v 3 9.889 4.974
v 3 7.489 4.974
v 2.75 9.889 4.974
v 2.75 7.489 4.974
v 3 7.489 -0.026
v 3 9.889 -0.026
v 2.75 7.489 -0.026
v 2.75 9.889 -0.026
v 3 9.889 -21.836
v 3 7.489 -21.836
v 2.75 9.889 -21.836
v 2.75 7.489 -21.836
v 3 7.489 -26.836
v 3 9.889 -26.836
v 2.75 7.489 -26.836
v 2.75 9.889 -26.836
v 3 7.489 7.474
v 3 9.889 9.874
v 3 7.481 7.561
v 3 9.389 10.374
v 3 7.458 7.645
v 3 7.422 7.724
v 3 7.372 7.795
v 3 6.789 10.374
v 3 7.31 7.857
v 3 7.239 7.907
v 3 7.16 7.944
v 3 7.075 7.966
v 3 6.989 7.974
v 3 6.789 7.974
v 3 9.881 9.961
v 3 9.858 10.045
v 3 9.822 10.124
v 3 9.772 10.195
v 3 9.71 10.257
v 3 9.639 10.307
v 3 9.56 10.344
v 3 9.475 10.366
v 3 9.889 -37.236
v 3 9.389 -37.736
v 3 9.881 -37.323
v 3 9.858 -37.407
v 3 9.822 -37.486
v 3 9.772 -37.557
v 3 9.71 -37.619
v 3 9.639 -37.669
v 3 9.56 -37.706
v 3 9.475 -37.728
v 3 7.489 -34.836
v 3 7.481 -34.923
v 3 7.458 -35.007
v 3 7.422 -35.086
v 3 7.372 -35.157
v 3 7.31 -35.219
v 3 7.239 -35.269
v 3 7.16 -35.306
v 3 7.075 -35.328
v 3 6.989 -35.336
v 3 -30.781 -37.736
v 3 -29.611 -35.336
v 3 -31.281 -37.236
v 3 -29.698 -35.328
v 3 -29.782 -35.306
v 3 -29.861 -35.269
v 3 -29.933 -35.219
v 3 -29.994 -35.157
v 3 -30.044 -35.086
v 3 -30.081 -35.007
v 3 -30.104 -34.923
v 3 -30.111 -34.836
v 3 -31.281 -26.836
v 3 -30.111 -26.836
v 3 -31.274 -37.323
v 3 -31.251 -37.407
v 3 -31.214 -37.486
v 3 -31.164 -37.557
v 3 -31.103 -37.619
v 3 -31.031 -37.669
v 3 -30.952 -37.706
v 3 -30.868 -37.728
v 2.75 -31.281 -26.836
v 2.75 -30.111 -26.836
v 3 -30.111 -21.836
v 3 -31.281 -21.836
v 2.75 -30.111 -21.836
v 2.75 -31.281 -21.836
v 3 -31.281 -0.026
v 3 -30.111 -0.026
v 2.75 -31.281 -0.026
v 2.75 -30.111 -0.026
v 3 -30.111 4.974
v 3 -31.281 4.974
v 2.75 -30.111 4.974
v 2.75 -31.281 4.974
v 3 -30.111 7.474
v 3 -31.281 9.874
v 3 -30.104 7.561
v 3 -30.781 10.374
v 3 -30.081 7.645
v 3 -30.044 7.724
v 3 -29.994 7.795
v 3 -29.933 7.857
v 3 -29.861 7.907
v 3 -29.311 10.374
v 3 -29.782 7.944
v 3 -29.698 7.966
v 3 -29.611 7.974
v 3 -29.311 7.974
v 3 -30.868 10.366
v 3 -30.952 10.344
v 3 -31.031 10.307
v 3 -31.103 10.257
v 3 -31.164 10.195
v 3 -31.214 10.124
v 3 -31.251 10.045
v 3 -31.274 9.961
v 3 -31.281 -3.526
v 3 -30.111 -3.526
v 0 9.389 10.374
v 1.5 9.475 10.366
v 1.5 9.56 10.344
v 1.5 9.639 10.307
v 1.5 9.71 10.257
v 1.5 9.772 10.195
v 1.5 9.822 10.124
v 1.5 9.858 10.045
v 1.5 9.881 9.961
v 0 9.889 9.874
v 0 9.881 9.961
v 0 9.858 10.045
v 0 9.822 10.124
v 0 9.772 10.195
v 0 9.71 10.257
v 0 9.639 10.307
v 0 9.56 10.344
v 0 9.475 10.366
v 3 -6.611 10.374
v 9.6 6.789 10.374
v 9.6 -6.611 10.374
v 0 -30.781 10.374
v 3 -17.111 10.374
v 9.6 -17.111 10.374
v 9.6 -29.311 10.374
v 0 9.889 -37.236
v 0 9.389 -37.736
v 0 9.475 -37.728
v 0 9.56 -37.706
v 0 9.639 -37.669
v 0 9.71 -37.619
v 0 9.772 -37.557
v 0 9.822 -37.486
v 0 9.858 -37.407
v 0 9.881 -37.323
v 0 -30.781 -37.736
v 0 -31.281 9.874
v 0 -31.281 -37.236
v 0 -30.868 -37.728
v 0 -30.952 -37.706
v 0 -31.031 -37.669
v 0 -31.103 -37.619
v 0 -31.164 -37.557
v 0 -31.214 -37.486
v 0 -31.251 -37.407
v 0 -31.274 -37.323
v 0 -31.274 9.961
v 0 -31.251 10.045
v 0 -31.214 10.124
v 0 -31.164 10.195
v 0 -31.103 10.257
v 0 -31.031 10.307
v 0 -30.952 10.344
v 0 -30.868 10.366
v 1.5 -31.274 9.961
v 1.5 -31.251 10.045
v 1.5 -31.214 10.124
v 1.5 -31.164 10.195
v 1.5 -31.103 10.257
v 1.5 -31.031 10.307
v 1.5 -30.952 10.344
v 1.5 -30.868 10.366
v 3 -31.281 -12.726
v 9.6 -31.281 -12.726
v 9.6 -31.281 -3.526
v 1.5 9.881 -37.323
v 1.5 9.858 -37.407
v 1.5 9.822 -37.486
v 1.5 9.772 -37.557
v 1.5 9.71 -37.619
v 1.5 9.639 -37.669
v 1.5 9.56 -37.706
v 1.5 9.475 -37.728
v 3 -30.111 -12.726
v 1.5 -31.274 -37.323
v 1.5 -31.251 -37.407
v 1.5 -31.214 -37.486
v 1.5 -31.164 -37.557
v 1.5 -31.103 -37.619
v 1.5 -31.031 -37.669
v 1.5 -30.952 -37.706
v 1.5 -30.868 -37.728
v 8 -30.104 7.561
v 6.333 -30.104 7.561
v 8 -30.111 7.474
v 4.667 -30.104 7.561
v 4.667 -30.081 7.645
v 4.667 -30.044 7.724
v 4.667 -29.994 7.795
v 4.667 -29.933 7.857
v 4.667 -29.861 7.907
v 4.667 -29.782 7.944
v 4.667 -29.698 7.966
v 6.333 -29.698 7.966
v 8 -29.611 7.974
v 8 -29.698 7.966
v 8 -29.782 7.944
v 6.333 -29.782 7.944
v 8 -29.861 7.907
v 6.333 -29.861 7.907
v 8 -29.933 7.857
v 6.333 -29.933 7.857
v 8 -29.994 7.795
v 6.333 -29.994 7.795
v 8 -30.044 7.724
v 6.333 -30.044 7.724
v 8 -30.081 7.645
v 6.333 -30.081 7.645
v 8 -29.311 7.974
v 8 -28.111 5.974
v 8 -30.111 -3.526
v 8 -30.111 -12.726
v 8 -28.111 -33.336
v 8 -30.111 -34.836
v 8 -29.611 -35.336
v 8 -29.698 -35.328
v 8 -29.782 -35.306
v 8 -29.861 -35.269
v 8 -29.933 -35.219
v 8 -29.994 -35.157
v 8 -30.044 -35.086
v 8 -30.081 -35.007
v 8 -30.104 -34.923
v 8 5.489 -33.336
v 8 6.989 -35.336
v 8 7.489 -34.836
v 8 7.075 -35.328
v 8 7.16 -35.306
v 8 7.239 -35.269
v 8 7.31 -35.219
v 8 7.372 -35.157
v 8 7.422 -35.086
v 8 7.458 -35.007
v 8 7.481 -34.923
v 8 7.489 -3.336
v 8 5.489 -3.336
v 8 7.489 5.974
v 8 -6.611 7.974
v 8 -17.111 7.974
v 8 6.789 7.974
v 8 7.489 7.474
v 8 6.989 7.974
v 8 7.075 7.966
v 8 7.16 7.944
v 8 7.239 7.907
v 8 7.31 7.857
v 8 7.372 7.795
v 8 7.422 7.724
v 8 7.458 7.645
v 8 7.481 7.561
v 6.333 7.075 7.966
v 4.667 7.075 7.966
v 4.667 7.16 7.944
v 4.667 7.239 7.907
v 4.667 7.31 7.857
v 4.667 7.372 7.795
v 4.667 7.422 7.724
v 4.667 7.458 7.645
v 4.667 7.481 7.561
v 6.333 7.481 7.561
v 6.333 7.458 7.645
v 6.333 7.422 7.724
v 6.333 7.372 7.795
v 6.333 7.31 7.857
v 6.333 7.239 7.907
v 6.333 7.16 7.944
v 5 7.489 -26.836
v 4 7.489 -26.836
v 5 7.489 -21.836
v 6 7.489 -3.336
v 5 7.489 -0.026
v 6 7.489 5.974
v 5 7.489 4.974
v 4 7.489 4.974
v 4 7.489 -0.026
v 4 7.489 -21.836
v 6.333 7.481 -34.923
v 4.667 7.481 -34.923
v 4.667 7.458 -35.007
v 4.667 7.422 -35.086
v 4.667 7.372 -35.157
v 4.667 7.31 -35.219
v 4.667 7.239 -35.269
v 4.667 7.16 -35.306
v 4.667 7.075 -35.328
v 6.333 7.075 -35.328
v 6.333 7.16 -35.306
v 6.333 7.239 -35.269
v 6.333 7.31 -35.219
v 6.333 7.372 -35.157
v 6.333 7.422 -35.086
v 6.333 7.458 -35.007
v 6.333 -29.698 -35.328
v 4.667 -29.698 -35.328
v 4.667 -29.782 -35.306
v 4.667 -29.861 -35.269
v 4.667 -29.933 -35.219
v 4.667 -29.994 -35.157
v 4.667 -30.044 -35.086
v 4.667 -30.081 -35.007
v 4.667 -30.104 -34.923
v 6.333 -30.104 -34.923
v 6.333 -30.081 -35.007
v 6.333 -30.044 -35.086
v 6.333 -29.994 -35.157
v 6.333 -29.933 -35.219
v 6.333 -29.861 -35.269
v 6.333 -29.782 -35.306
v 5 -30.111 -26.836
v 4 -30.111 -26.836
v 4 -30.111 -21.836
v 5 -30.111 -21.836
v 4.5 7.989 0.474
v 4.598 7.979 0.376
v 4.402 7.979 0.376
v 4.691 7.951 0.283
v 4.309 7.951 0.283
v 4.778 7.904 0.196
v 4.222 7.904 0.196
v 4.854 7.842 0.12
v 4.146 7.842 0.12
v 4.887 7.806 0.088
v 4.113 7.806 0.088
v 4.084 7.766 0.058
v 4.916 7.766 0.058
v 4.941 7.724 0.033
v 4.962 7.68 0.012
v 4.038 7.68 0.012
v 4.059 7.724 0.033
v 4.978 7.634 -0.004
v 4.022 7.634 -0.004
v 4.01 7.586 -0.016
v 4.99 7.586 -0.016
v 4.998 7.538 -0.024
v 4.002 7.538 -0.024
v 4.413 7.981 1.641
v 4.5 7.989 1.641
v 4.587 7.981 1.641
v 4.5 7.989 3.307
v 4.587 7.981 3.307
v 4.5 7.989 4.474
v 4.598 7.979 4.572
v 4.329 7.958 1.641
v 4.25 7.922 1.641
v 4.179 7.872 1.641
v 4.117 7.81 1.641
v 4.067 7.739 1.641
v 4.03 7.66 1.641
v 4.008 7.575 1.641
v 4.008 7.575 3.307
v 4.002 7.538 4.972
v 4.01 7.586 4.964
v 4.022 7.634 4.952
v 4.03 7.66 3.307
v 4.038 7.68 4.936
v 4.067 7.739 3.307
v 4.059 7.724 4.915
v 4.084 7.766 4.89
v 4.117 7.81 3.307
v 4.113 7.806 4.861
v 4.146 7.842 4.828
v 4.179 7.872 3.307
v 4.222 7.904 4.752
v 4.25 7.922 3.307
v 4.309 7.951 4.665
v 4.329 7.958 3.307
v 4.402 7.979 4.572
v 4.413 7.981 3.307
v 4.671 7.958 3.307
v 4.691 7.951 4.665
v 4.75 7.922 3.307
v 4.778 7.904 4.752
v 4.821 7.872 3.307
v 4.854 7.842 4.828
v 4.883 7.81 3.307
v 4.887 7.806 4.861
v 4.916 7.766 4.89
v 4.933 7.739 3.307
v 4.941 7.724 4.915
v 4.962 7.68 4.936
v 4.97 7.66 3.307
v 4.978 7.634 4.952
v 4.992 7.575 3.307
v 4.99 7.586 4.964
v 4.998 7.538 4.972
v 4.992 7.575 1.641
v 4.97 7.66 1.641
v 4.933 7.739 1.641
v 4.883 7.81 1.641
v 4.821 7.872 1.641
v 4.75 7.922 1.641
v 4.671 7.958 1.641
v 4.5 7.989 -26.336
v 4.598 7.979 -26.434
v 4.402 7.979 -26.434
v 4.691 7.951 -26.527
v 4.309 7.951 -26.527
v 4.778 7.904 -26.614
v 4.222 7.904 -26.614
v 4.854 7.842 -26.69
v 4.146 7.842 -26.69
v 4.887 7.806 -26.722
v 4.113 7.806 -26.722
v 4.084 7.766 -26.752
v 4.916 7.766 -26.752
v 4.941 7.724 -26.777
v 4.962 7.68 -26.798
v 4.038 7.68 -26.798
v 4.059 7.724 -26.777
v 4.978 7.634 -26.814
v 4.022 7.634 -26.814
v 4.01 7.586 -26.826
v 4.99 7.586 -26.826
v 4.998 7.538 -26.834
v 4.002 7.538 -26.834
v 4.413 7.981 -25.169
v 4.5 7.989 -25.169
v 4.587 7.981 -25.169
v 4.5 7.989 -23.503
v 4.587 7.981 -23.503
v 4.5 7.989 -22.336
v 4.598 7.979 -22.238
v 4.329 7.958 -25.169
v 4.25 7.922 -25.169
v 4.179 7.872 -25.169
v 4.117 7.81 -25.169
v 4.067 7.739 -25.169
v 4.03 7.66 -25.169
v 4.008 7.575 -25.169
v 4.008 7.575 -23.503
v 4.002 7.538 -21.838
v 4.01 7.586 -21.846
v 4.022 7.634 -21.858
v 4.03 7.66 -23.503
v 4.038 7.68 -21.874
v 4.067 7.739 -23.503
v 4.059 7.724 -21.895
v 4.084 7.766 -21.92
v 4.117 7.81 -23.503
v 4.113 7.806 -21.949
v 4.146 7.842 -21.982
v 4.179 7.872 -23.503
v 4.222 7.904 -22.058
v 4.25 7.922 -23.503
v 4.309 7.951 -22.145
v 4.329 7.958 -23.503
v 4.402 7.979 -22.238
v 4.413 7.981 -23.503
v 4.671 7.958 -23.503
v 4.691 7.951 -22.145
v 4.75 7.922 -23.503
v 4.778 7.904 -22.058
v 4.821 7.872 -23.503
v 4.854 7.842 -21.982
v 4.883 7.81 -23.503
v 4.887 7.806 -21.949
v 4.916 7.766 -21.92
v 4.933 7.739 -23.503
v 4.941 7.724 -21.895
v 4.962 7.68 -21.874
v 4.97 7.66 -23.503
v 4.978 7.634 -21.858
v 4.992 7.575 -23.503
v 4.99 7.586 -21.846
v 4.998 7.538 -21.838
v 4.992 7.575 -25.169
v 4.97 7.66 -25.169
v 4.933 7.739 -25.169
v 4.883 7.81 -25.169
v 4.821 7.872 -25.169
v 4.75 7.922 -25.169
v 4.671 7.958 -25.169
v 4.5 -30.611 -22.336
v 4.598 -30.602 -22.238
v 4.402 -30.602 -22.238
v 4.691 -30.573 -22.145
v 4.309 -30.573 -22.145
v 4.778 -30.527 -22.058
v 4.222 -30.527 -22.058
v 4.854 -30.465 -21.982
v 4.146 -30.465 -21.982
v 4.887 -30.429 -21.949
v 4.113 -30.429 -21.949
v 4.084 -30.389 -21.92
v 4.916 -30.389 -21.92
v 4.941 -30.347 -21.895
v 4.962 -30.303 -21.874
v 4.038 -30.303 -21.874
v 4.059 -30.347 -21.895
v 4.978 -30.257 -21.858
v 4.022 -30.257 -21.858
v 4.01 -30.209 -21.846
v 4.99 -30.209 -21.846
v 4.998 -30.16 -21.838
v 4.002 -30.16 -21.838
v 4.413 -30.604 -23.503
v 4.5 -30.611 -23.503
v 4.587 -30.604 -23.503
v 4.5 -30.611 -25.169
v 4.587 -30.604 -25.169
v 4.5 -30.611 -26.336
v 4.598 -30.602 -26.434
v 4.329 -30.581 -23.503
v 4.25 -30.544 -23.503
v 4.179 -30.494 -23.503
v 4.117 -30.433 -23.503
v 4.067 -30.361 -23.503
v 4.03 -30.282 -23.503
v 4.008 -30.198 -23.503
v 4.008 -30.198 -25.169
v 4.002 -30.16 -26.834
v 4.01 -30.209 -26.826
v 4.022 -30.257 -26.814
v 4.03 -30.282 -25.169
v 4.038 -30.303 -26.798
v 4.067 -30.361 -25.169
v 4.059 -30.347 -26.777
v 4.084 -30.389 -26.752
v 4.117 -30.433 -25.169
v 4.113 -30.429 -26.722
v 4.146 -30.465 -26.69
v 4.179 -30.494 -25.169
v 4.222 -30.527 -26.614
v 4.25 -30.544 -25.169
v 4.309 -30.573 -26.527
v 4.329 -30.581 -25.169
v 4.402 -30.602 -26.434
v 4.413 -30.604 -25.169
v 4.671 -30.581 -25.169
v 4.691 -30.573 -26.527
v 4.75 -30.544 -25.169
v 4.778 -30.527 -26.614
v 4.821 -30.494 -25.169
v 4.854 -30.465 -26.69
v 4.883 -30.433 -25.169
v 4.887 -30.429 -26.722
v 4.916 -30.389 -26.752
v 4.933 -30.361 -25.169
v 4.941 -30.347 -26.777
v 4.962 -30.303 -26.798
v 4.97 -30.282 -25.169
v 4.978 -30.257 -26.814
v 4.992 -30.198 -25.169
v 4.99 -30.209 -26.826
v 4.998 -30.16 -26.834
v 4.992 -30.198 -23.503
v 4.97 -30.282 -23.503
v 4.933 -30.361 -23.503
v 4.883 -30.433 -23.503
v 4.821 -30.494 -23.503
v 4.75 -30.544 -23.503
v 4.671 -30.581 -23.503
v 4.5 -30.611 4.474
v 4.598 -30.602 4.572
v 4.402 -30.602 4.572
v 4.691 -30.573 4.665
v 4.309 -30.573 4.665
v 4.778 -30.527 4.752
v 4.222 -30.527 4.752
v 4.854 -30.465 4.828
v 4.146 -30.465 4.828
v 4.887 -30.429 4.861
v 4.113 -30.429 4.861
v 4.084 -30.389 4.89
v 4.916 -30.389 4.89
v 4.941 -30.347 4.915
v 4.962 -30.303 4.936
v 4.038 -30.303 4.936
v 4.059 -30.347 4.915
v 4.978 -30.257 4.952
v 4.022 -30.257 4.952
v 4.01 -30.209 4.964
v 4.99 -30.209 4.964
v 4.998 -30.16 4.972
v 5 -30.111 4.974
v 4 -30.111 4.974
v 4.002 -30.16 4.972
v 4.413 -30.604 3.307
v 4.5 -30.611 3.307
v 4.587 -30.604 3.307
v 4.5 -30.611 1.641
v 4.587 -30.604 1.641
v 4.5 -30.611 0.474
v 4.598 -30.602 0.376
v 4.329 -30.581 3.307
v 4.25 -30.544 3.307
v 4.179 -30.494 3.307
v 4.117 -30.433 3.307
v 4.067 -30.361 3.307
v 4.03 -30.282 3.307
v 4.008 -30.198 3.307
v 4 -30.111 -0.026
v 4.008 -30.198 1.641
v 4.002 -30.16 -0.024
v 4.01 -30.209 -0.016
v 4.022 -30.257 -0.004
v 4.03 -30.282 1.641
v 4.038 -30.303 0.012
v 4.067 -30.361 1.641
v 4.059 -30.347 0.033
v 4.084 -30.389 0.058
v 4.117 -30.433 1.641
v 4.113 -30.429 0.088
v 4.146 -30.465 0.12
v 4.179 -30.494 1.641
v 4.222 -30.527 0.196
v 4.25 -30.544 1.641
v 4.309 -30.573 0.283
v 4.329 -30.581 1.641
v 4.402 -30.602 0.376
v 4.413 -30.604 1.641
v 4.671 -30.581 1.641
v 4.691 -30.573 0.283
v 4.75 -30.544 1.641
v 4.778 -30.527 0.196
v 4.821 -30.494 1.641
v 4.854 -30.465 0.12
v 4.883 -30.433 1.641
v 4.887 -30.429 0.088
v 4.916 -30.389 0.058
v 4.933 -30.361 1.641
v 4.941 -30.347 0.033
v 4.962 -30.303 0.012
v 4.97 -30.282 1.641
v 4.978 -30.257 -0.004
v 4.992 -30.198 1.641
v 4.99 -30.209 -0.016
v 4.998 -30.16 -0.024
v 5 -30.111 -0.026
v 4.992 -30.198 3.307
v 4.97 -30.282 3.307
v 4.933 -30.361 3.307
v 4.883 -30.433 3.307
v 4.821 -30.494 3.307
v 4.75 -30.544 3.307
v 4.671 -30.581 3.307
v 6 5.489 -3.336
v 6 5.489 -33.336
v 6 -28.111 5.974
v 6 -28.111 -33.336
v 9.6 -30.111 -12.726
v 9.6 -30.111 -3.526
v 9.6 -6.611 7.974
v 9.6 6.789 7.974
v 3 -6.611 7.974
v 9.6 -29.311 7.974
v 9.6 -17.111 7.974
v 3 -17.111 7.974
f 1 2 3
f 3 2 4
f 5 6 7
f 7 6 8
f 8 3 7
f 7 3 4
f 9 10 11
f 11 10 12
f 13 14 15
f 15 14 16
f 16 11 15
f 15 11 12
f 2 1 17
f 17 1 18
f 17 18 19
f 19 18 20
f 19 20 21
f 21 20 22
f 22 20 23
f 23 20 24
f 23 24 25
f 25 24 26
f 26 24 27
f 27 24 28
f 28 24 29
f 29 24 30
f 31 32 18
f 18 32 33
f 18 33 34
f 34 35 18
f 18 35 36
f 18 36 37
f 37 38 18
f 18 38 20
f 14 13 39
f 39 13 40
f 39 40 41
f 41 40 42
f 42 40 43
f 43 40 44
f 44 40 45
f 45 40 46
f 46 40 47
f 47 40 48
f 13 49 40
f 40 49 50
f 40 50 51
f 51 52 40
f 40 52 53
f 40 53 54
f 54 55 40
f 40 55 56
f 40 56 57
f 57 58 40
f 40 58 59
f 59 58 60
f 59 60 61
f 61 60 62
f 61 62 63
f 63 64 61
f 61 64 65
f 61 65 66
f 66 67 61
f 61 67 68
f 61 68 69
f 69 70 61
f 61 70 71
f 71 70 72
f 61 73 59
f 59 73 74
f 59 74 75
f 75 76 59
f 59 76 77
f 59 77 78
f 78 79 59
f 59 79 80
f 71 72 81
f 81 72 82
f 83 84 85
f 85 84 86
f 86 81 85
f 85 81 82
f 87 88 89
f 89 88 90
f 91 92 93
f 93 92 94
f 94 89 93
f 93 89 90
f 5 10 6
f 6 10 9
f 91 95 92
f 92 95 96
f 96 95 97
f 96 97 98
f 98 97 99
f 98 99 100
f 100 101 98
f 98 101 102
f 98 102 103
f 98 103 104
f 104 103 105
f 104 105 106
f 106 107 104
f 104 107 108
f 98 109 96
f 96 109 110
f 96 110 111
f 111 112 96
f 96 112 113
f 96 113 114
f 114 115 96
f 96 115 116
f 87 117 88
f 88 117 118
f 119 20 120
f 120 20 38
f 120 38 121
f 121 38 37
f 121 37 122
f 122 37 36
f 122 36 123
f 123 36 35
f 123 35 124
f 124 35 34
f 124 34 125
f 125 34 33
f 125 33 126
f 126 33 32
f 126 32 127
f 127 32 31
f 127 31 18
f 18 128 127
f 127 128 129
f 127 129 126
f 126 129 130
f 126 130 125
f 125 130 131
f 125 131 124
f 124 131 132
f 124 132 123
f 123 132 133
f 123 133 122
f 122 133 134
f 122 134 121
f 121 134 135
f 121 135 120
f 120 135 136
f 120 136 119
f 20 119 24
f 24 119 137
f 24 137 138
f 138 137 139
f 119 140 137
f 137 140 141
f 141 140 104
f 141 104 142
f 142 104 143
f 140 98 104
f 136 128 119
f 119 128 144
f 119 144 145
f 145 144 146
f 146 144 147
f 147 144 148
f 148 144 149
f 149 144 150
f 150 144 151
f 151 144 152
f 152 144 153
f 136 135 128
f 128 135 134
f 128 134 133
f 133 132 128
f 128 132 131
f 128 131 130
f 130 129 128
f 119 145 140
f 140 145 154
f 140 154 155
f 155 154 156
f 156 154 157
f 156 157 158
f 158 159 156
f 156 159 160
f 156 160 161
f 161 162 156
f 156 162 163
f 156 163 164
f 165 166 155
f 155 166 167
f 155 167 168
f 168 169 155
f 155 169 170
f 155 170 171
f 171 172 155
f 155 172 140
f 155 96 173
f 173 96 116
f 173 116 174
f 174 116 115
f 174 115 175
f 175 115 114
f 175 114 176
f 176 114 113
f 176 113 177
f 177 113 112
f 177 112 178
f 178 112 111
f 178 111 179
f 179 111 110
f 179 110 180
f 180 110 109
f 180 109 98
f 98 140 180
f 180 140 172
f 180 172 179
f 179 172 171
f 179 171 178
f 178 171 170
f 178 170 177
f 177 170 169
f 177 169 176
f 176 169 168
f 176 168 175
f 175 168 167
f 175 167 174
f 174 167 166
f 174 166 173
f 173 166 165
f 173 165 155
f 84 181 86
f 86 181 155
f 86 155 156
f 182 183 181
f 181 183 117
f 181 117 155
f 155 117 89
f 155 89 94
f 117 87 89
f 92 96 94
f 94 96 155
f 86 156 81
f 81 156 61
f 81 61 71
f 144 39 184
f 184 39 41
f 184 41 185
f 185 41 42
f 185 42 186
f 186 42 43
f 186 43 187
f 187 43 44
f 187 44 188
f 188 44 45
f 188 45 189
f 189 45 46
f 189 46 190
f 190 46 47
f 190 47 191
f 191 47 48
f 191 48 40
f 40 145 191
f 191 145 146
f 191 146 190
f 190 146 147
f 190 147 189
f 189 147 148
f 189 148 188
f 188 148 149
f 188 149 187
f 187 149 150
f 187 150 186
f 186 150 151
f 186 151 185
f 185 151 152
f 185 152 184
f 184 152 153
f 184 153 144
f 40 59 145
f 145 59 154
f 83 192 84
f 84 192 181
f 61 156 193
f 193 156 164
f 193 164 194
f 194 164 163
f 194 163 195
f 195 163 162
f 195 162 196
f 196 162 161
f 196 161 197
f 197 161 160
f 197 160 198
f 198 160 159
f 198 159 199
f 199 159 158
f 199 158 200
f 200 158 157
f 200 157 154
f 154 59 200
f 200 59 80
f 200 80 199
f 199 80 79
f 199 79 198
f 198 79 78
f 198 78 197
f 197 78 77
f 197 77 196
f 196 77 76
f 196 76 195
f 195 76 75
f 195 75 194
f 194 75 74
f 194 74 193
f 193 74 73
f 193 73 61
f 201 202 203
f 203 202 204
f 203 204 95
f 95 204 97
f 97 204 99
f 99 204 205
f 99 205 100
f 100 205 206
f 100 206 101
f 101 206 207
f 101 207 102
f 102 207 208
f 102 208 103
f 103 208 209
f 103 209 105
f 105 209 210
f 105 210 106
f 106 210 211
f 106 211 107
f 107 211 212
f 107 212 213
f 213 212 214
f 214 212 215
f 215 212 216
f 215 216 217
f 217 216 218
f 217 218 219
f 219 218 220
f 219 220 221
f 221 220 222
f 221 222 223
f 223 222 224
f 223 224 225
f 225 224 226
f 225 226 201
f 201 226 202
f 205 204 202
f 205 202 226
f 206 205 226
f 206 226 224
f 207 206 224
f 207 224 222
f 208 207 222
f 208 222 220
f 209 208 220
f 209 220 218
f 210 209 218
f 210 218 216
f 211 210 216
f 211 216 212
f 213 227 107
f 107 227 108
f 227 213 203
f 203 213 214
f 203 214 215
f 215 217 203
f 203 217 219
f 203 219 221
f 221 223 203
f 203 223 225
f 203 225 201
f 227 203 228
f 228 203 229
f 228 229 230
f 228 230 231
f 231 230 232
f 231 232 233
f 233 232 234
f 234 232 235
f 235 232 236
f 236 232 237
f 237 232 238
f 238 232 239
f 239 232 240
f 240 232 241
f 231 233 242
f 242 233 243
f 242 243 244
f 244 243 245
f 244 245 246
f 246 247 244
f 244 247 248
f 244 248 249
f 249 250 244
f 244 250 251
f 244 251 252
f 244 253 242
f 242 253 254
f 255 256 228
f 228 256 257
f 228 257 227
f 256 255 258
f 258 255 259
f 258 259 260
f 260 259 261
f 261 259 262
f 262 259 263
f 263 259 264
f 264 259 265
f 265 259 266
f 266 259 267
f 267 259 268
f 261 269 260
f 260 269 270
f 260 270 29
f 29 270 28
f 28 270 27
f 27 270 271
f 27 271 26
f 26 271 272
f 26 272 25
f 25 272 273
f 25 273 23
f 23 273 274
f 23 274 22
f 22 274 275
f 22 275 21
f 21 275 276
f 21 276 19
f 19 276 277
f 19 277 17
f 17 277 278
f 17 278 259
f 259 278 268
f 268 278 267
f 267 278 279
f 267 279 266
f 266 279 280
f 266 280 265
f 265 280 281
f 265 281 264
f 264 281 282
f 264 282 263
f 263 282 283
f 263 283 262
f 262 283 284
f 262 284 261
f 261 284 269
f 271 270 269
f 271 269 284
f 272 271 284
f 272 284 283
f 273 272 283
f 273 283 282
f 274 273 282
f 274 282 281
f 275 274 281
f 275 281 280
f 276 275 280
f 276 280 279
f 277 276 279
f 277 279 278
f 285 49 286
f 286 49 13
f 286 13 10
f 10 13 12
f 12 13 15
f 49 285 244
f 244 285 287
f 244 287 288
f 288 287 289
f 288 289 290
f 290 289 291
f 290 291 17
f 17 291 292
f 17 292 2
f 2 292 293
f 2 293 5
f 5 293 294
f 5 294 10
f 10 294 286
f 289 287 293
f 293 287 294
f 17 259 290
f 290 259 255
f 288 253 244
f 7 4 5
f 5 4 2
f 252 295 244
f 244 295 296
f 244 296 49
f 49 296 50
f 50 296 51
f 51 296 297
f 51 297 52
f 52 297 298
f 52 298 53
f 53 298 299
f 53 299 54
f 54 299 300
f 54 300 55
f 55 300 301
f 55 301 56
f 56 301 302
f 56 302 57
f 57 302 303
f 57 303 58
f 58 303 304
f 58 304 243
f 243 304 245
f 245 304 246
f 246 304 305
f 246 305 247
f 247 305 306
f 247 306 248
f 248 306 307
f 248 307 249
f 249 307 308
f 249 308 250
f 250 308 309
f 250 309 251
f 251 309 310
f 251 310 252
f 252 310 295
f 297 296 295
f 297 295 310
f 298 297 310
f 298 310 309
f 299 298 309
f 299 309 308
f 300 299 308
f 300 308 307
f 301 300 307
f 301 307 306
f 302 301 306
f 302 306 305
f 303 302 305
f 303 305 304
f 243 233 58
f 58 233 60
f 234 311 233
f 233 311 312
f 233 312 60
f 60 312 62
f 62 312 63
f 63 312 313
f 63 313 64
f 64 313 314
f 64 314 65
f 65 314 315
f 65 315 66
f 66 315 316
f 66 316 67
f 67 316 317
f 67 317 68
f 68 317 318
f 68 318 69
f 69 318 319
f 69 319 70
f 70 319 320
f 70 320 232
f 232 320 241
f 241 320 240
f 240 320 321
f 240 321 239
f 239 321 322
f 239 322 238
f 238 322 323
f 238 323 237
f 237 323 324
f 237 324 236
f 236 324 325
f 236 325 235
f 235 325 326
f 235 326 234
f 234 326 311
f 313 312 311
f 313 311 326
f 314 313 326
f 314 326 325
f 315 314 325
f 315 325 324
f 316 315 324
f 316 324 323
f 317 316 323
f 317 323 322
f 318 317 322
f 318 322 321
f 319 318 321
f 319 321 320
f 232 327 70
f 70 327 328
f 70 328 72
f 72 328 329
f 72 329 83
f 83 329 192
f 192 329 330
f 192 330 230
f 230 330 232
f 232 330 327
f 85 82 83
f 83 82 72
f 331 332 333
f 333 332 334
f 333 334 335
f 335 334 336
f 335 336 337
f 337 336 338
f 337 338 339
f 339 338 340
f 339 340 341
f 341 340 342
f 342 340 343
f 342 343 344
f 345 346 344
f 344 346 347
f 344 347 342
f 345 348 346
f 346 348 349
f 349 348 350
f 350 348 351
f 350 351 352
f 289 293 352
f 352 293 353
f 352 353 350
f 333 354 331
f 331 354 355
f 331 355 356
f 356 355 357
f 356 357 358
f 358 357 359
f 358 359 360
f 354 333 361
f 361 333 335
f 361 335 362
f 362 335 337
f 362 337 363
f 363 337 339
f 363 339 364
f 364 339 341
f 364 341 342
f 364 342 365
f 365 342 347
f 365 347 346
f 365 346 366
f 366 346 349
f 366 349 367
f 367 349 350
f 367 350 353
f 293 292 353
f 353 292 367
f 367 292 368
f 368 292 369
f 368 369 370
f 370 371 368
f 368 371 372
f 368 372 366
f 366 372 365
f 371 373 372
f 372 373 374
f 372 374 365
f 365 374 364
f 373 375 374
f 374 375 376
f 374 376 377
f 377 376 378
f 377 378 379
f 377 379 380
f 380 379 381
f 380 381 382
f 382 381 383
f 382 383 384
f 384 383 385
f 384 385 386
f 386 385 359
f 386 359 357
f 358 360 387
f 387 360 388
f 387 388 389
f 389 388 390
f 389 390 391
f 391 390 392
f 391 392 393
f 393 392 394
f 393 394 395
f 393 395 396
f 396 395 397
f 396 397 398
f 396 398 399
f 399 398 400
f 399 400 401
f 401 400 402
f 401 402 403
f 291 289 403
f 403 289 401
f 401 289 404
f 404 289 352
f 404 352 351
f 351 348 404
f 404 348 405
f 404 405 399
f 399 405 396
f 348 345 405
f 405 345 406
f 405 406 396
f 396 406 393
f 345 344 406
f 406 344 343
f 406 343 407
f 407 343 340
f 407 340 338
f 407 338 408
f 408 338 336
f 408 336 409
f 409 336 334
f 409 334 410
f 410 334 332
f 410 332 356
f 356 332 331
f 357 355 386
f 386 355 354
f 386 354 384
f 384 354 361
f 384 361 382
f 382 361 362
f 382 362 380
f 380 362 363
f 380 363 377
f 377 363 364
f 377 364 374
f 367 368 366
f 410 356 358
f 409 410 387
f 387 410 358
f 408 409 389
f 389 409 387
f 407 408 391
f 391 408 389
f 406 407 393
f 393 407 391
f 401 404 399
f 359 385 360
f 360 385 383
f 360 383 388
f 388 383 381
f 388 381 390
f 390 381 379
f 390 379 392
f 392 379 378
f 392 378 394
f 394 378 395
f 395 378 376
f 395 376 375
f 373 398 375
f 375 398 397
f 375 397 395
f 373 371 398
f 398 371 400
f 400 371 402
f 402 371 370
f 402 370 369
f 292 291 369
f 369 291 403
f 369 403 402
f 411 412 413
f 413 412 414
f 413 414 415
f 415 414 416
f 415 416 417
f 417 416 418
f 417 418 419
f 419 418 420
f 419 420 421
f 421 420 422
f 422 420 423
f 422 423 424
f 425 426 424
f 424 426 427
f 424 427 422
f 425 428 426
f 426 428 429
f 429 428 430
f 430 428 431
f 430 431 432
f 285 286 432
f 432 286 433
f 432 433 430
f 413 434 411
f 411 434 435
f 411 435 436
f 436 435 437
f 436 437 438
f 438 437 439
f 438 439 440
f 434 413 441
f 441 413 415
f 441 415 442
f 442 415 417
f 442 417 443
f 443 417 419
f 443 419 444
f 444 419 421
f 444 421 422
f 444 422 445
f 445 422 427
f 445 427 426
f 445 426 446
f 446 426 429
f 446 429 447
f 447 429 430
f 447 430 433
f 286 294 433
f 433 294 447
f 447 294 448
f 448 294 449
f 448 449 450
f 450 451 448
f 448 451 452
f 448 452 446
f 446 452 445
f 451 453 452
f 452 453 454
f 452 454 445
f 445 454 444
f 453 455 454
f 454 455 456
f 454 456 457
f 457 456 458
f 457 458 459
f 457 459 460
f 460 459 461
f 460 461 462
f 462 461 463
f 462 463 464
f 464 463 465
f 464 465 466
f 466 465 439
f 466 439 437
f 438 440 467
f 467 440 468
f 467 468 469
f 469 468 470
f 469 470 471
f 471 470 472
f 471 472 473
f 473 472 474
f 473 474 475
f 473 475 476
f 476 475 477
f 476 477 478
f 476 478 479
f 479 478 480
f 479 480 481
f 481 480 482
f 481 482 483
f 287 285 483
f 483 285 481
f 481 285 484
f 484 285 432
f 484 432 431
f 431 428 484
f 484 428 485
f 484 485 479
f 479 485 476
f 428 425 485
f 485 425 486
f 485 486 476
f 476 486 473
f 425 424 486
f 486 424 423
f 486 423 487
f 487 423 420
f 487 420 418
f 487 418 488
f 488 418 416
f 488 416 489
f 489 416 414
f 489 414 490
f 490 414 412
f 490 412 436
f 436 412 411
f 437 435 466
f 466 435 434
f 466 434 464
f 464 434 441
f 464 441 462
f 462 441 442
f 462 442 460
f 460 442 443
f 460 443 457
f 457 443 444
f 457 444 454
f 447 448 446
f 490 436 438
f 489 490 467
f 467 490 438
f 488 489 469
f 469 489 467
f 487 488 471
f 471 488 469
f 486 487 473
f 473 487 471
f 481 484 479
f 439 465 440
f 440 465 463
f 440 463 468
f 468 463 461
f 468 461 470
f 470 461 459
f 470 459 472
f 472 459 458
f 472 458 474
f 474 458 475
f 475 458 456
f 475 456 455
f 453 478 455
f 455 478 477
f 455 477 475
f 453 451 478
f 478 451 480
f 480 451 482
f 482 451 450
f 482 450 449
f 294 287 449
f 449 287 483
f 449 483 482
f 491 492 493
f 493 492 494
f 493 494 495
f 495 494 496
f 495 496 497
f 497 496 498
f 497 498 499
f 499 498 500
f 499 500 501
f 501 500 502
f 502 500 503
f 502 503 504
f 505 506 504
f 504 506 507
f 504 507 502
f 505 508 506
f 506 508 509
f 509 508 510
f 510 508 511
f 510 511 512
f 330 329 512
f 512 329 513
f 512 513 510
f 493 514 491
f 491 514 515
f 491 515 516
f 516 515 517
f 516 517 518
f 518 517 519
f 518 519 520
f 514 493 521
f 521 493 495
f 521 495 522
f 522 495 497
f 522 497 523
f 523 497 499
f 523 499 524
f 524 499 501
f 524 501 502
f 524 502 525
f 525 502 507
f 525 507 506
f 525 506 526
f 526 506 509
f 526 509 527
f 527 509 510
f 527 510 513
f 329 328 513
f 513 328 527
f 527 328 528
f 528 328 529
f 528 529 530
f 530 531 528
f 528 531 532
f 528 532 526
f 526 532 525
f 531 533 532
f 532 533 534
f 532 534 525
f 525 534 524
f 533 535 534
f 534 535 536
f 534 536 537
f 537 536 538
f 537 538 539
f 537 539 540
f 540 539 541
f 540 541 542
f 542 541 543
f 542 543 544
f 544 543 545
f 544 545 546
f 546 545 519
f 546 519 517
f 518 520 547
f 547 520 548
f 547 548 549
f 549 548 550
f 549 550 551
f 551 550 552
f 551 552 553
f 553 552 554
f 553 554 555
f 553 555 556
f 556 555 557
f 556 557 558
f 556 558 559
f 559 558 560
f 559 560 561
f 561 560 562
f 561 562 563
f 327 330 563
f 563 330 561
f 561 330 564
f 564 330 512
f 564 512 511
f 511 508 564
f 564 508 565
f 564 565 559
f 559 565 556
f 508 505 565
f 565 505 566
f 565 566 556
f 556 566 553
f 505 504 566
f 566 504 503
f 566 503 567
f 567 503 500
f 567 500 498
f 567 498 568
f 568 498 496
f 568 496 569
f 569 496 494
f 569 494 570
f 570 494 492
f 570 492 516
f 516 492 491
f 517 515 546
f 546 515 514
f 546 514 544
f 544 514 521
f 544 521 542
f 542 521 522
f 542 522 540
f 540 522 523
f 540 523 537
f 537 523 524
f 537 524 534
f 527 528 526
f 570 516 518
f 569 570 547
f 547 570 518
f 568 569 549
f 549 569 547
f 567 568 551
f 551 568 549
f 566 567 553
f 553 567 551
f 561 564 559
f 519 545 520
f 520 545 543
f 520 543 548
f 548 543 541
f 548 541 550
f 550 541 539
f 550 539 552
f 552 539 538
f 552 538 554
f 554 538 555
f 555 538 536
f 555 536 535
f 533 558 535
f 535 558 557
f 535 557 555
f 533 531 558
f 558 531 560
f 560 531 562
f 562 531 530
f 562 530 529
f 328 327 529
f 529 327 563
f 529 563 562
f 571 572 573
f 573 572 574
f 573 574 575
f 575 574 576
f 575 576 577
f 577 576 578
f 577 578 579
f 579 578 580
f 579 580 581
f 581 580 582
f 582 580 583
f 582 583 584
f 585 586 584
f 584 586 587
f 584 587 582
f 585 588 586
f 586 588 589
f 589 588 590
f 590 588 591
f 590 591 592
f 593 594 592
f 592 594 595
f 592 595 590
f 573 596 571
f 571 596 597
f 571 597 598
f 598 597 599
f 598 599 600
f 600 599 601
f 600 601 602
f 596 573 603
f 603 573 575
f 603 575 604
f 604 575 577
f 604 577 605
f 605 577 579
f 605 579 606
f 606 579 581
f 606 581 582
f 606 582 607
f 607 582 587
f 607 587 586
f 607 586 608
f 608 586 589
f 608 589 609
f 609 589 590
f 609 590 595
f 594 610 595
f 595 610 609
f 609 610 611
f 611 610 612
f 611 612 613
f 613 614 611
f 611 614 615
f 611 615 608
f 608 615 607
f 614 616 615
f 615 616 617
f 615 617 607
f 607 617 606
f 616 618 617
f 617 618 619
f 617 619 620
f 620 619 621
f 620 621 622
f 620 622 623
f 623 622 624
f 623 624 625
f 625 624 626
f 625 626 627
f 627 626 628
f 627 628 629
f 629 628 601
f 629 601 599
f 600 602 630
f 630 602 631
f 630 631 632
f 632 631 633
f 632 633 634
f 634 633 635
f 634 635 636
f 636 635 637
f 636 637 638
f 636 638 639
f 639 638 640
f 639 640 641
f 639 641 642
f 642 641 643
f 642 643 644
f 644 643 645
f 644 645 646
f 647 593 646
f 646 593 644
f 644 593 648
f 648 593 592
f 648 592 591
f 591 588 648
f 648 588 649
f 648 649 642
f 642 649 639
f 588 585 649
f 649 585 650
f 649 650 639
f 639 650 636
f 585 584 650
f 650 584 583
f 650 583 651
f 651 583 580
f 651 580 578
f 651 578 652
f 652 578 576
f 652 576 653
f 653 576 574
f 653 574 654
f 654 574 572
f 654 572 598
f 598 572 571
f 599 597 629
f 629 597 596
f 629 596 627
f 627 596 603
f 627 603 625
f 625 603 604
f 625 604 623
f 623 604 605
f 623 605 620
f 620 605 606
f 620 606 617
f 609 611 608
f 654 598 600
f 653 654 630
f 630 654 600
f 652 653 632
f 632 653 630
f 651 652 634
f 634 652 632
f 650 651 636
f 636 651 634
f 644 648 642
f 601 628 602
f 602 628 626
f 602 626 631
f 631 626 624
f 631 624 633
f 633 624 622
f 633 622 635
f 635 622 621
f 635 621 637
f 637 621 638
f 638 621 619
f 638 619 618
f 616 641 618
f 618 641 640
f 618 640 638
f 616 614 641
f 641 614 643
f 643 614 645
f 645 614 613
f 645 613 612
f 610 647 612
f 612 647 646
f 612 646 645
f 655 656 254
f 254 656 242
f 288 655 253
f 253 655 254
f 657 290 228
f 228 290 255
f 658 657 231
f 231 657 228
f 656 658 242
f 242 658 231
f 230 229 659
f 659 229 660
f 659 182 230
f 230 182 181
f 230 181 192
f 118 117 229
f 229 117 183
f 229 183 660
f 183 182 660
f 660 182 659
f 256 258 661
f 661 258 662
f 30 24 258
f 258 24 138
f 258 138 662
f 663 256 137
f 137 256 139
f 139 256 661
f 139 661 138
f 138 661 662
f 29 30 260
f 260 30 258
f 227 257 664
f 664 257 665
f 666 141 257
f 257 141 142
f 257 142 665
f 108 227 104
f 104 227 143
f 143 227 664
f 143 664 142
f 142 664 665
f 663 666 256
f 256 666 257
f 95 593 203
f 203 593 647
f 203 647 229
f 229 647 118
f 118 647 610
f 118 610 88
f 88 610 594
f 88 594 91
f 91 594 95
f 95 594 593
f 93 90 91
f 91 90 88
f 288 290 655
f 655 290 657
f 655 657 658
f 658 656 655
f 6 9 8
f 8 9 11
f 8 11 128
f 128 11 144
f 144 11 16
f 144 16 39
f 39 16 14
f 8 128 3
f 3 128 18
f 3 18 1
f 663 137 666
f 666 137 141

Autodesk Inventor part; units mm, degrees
ref_plane "YZ Plane" through (0, 0, 0) normal (1, 0, 0) x (0, 1, 0)
ref_plane "XZ Plane" through (0, 0, 0) normal (0, 1, 0) x (-1, 0, 0)
ref_plane "XY Plane" through (0, 0, 0) normal (0, 0, 1) x (1, 0, 0)
sketch "Sketch1" plane through (0, 0, 0) normal (1, 0, 0) x (0, 1, 0)
  line L0 (9.8886, 10.374) -> (-32.1114, 10.374)
  line L1 (-32.1114, 10.374) -> (-32.1114, -37.736)
  line L2 (-32.1114, -37.736) -> (9.8886, -37.736)
  line L3 (9.8886, -37.736) -> (9.8886, 10.374)
  point P0 (0, 0)
  dimension "d0" = 42
  dimension "d1" = 48.11
extrude "Extrusion1" add sketch "Sketch1" along normal blind 3
sketch "Sketch2" plane through (3, 0, 0) normal (1, 0, 0) x (0, 0, -1)
  line L0 (-7.974, 7.4886) -> (35.336, 7.4886)
  line L1 (35.336, 7.4886) -> (35.336, -30.1114)
  line L2 (35.336, -30.1114) -> (-7.974, -30.1114)
  line L3 (-7.974, -30.1114) -> (-7.974, 7.4886)
  line L4 (37.736, 9.8886) -> (-10.374, 9.8886) projected
  line L5 (-10.374, 9.8886) -> (-10.374, -32.1114) projected
  line L6 (-10.374, -32.1114) -> (37.736, -32.1114) projected
  point P0 (0, 0)
  dimension "d4" = 43.31
  dimension "d6" = 2.4
  dimension "d7" = 2.4
  dimension "d20" = 2
extrude "Extrusion2" add sketch "Sketch2" along normal blind 3
sketch "Sketch3" plane through (3, 0, 0) normal (1, 0, 0) x (0, 0, -1)
  line L0 (-10.374, 9.8886) -> (-10.374, -32.1114) projected
  line L1 (-7.974, -30.1114) -> (-7.974, 7.4886) projected
  line L2 (-10.374, -29.3114) -> (-7.974, -29.3114)
  line L3 (-7.974, -29.3114) -> (-7.974, -17.1114)
  line L4 (-7.974, -17.1114) -> (-10.374, -17.1114)
  line L5 (-10.374, -17.1114) -> (-10.374, -29.3114)
  line L6 (-10.374, -32.1114) -> (37.736, -32.1114) projected
  point P0 (0, 0)
  point P1 (-10.374, 9.3886)
  point P2 (-10.374, -31.6114)
  point P3 (-7.974, -29.6114)
  point P4 (-7.974, 6.9886)
  point P5 (-9.874, -32.1114)
  point P6 (37.236, -32.1114)
  point P7 (-7.974, -29.3114)
  dimension "d12" = 12.2
  dimension "d13" = 2.8
extrude "PowerSocket" add sketch "Sketch3" along normal blind 6.6
sketch "Sketch5" plane through (3, 0, 0) normal (1, 0, 0) x (0, 0, -1)
  line L0 (-10.374, 9.8886) -> (-10.374, -17.1114) projected
  line L1 (-7.974, -17.1114) -> (-7.974, 7.4886) projected
  line L2 (-10.374, -6.6114) -> (-7.974, -6.6114)
  line L3 (-7.974, -6.6114) -> (-7.974, 6.7886)
  line L4 (-7.974, 6.7886) -> (-10.374, 6.7886)
  line L5 (-10.374, 6.7886) -> (-10.374, -6.6114)
  line L6 (-7.974, -17.1114) -> (-10.374, -17.1114) projected
  line L7 (35.336, 7.4886) -> (-7.974, 7.4886) projected
  line L8 (37.736, 9.8886) -> (-10.374, 9.8886) projected
  point P0 (0, 0)
  point P1 (-10.374, 9.3886)
  point P2 (-10.374, 6.7886)
  point P3 (-7.974, -6.6114)
  point P4 (37.236, 9.8886)
  point P5 (-9.874, 9.8886)
  dimension "d21" = 13.4
  dimension "d75" = 3.1
extrude "RJ-12" add sketch "Sketch5" along normal blind 6.6 contours L4 L1 L2 L0
sketch "Sketch6" plane through (3, 0, 0) normal (1, 0, 0) x (0, 0, -1)
  line L0 (-10.374, -32.1114) -> (37.736, -32.1114) projected
  line L1 (-7.974, -30.1114) -> (35.336, -30.1114) projected
  line L2 (12.726, -32.1114) -> (3.526, -32.1114)
  line L3 (3.526, -32.1114) -> (3.526, -30.1114)
  line L4 (3.526, -30.1114) -> (12.726, -30.1114)
  line L5 (12.726, -30.1114) -> (12.726, -32.1114)
  line L6 (-10.374, -29.3114) -> (-10.374, -32.1114) projected
  point P0 (0, 0)
  point P1 (-9.874, -32.1114)
  point P2 (37.236, -32.1114)
  point P3 (-10.374, -31.6114)
  dimension "d25" = 9.2
  dimension "d26" = 13.9
extrude "USB-C" add sketch "Sketch6" along normal blind 6.6
sketch "Sketch7" plane through (6, 0, 0) normal (1, 0, 0) x (0, 0, -1)
  line L0 (35.336, 7.4886) -> (-7.974, 7.4886) projected
  line L1 (-7.974, 7.4886) -> (-5.974, 7.4886)
  line L2 (-5.974, 7.4886) -> (-5.974, -30.1114)
  line L3 (-7.974, -30.1114) -> (3.526, -30.1114) projected
  line L4 (-5.974, -30.1114) -> (-7.974, -30.1114)
  line L5 (-10.374, -29.3114) -> (-10.374, -32.1114) projected
  line L6 (-7.974, 7.4886) -> (-7.974, -17.1114) projected
  line L7 (-7.974, -30.1114) -> (-7.974, 7.4886)
  line L8 (35.336, -30.1114) -> (12.726, -30.1114) projected
  line L9 (-5.974, -30.1114) -> (35.336, -30.1114)
  line L10 (35.336, -30.1114) -> (35.336, -28.1114)
  line L11 (35.336, 7.4886) -> (35.336, -30.1114) projected
  line L12 (35.336, -28.1114) -> (-5.974, -28.1114)
  line L13 (35.336, -28.1114) -> (35.336, 7.4886)
  line L14 (35.336, 7.4886) -> (33.336, 7.4886)
  line L15 (33.336, 7.4886) -> (33.336, -28.1114)
  line L16 (33.336, 7.4886) -> (3.336, 7.4886)
  line L17 (3.336, 7.4886) -> (3.336, 5.4886)
  line L18 (3.336, 5.4886) -> (33.336, 5.4886)
  point P0 (0, 0)
  point P1 (-10.374, -31.6114)
  point P2 (-7.974, 6.7886)
  point P3 (-7.974, 6.6886)
  dimension "d29" = 2
  dimension "d30" = 2
  dimension "d31" = 2
  dimension "d32" = 2
  dimension "d33" = 30
  dimension "d34" = 2
extrude "Extrusion7" add sketch "Sketch7" along normal blind 2 contours L11 L12 L15 L0 | L15 L18 L17 L0 | L10 L8 L9 L3 L2 L12 | L2 L3 L7 L6 L0
sketch "Sketch8" plane through (3, -30.1114, -3.526) normal (0, -1, 0) x (1, 0, 0)
  line L0 (2, 8.5) -> (1, 8.5)
  line L1 (1, 8.5) -> (1, 3.5)
  line L2 (1, 3.5) -> (2, 3.5)
  line L3 (2, 3.5) -> (2, 8.5)
  line L4 (0, 11.5) -> (5, 11.5) projected
  line L5 (5, 11.5) -> (5, 0) projected
  line L6 (0, 13.9) -> (0, 0) projected
  point P0 (-3, 3.526)
  point P1 (2, 6)
  point P2 (0, 13.4)
  dimension "d37" = 1
  dimension "d38" = 5
  dimension "d39" = 5.5
  dimension "d60" = 1
extrude "Extrusion8" add sketch "Sketch8" along normal blind 0.5
fillet "Fillet3" radius 0.5 4 edges at (5, -30.6114, 2.474) (4, -30.6114, 2.474) (4.5, -30.6114, 4.974) (4.5, -30.6114, -0.026)
sketch "Sketch9" plane through (3, -30.1114, -35.336) normal (0, -1, 0) x (1, 0, 0)
  line L0 (2, 13.5) -> (1, 13.5)
  line L1 (1, 13.5) -> (1, 8.5)
  line L2 (1, 8.5) -> (2, 8.5)
  line L3 (2, 8.5) -> (2, 13.5)
  line L4 (5, 22.61) -> (5, 0) projected
  line L5 (0, 0) -> (5, 0) projected
  line L6 (0, 22.61) -> (0, -2.4) projected
  point P0 (-3, 35.336)
  point P1 (2, 11)
  point P2 (0, -1.9)
  dimension "d44" = 1
  dimension "d45" = 5
  dimension "d47" = 11
  dimension "d59" = 1
extrude "Extrusion9" add sketch "Sketch9" along normal blind 0.5
fillet "Fillet4" radius 0.5 4 edges at (5, -30.6114, -24.336) (4, -30.6114, -24.336) (4.5, -30.6114, -21.836) (4.5, -30.6114, -26.836)
sketch "Sketch10" plane through (3, 7.4886, 7.974) normal (0, 1, 0) x (1, 0, 0)
  line L0 (2, 34.81) -> (1, 34.81)
  line L1 (1, 34.81) -> (1, 29.81)
  line L2 (1, 29.81) -> (2, 29.81)
  line L3 (2, 29.81) -> (2, 34.81)
  line L4 (5, 43.31) -> (5, 11.31) projected
  line L5 (0, 43.31) -> (5, 43.31) projected
  line L6 (0, 45.71) -> (0, -2.4) projected
  point P0 (-3, 7.974)
  point P1 (2, 32.31)
  point P2 (0, 45.21)
  point P3 (0, -1.9)
  dimension "d51" = 1
  dimension "d52" = 5
  dimension "d54" = 11
  dimension "d58" = 1
extrude "Extrusion10" add sketch "Sketch10" along normal blind 0.5
fillet "Fillet5" radius 0.5 4 edges at (5, 7.9886, -24.336) (4, 7.9886, -24.336) (4.5, 7.9886, -26.836) (4.5, 7.9886, -21.836)
sketch "Sketch11" plane through (3, 7.4886, 7.974) normal (0, 1, 0) x (1, 0, 0)
  line L0 (2, 8) -> (1, 8)
  line L1 (1, 8) -> (1, 3)
  line L2 (1, 3) -> (2, 3)
  line L3 (2, 3) -> (2, 8)
  line L4 (0, 45.71) -> (0, -2.4) projected
  line L5 (0, 0) -> (5, 0) projected
  point P0 (-3, 7.974)
  point P1 (0, 45.21)
  point P2 (0, -1.9)
  point P3 (1, 5.5)
  dimension "d61" = 1
  dimension "d62" = 5
  dimension "d63" = 1
  dimension "d64" = 5.5
extrude "Extrusion11" add sketch "Sketch11" along normal blind 0.5
fillet "Fillet6" radius 0.5 4 edges at (5, 7.9886, 2.474) (4, 7.9886, 2.474) (4.5, 7.9886, 4.974) (4.5, 7.9886, -0.026)
fillet "Fillet7" radius 0.5 4 edges at (5.5, -30.1114, -35.336) (5.5, 7.4886, -35.336) (5.5, 7.4886, 7.974) (5.5, -30.1114, 7.974)
sketch "Sketch14" plane through (0, -32.1114, -37.736) normal (0, -1, 0) x (1, 0, 0)
  line L0 (12.0388, 48.7944) -> (-2.0784, 48.7944)
  line L1 (-2.0784, 48.7944) -> (-2.0784, -2.1843)
  line L2 (-2.0784, -2.1843) -> (12.0388, -2.1843)
  line L3 (12.0388, -2.1843) -> (12.0388, 48.7944)
  point P0 (0, 37.736)
extrude "TrimmWall" cut sketch "Sketch14" against normal blind 0.83
fillet "Fillet8" radius 0.5 4 edges at (1.5, -31.2814, -37.736) (1.5, 9.8886, -37.736) (1.5, -31.2814, 10.374) (1.5, 9.8886, 10.374)
sketch "Sketch15" plane through (3, 0, 0) normal (1, 0, 0) x (0, 0, -1)
  arc A0 (-4.974, -30.1114) -> (-4.474, -30.6114) centre (-4.474, -30.1114) ccw projected
  line L0 (-9.874, -31.2814) -> (3.526, -31.2814) projected
  line L1 (-4.974, -30.1114) -> (0.026, -30.1114)
  line L2 (0.026, -30.1114) -> (0.026, -31.2814)
  line L3 (0.026, -31.2814) -> (-4.974, -31.2814)
  line L4 (-4.974, -31.2814) -> (-4.974, -30.1114)
  arc A1 (21.836, -30.1114) -> (22.336, -30.6114) centre (22.336, -30.1114) ccw projected
  line L5 (12.726, -31.2814) -> (37.236, -31.2814) projected
  line L6 (21.836, -30.1114) -> (26.836, -30.1114)
  line L7 (26.836, -30.1114) -> (26.836, -31.2814)
  line L8 (26.836, -31.2814) -> (21.836, -31.2814)
  line L9 (21.836, -31.2814) -> (21.836, -30.1114)
  point P0 (0, 0)
  dimension "d79" = 5
  dimension "d80" = 5
extrude "Oeffnungskerben1" cut sketch "Sketch15" against normal blind 0.25
sketch "Sketch16" plane through (3, 0, 0) normal (1, 0, 0) x (0, 0, -1)
  arc A0 (26.836, 7.4886) -> (26.336, 7.9886) centre (26.336, 7.4886) ccw projected
  line L0 (37.236, 9.8886) -> (-9.874, 9.8886) projected
  line L1 (26.836, 7.4886) -> (21.836, 7.4886)
  line L2 (21.836, 7.4886) -> (21.836, 9.8886)
  line L3 (21.836, 9.8886) -> (26.836, 9.8886)
  line L4 (26.836, 9.8886) -> (26.836, 7.4886)
  arc A1 (0.026, 7.4886) -> (-0.474, 7.9886) centre (-0.474, 7.4886) ccw projected
  line L5 (0.026, 7.4886) -> (-4.974, 7.4886)
  line L6 (-4.974, 7.4886) -> (-4.974, 9.8886)
  line L7 (-4.974, 9.8886) -> (0.026, 9.8886)
  line L8 (0.026, 9.8886) -> (0.026, 7.4886)
  point P0 (0, 0)
  dimension "d83" = 5
  dimension "d84" = 5
extrude "Oeffnungskerben2" cut sketch "Sketch16" against normal blind 0.25
properties part number "Enclosure_Bottom"
